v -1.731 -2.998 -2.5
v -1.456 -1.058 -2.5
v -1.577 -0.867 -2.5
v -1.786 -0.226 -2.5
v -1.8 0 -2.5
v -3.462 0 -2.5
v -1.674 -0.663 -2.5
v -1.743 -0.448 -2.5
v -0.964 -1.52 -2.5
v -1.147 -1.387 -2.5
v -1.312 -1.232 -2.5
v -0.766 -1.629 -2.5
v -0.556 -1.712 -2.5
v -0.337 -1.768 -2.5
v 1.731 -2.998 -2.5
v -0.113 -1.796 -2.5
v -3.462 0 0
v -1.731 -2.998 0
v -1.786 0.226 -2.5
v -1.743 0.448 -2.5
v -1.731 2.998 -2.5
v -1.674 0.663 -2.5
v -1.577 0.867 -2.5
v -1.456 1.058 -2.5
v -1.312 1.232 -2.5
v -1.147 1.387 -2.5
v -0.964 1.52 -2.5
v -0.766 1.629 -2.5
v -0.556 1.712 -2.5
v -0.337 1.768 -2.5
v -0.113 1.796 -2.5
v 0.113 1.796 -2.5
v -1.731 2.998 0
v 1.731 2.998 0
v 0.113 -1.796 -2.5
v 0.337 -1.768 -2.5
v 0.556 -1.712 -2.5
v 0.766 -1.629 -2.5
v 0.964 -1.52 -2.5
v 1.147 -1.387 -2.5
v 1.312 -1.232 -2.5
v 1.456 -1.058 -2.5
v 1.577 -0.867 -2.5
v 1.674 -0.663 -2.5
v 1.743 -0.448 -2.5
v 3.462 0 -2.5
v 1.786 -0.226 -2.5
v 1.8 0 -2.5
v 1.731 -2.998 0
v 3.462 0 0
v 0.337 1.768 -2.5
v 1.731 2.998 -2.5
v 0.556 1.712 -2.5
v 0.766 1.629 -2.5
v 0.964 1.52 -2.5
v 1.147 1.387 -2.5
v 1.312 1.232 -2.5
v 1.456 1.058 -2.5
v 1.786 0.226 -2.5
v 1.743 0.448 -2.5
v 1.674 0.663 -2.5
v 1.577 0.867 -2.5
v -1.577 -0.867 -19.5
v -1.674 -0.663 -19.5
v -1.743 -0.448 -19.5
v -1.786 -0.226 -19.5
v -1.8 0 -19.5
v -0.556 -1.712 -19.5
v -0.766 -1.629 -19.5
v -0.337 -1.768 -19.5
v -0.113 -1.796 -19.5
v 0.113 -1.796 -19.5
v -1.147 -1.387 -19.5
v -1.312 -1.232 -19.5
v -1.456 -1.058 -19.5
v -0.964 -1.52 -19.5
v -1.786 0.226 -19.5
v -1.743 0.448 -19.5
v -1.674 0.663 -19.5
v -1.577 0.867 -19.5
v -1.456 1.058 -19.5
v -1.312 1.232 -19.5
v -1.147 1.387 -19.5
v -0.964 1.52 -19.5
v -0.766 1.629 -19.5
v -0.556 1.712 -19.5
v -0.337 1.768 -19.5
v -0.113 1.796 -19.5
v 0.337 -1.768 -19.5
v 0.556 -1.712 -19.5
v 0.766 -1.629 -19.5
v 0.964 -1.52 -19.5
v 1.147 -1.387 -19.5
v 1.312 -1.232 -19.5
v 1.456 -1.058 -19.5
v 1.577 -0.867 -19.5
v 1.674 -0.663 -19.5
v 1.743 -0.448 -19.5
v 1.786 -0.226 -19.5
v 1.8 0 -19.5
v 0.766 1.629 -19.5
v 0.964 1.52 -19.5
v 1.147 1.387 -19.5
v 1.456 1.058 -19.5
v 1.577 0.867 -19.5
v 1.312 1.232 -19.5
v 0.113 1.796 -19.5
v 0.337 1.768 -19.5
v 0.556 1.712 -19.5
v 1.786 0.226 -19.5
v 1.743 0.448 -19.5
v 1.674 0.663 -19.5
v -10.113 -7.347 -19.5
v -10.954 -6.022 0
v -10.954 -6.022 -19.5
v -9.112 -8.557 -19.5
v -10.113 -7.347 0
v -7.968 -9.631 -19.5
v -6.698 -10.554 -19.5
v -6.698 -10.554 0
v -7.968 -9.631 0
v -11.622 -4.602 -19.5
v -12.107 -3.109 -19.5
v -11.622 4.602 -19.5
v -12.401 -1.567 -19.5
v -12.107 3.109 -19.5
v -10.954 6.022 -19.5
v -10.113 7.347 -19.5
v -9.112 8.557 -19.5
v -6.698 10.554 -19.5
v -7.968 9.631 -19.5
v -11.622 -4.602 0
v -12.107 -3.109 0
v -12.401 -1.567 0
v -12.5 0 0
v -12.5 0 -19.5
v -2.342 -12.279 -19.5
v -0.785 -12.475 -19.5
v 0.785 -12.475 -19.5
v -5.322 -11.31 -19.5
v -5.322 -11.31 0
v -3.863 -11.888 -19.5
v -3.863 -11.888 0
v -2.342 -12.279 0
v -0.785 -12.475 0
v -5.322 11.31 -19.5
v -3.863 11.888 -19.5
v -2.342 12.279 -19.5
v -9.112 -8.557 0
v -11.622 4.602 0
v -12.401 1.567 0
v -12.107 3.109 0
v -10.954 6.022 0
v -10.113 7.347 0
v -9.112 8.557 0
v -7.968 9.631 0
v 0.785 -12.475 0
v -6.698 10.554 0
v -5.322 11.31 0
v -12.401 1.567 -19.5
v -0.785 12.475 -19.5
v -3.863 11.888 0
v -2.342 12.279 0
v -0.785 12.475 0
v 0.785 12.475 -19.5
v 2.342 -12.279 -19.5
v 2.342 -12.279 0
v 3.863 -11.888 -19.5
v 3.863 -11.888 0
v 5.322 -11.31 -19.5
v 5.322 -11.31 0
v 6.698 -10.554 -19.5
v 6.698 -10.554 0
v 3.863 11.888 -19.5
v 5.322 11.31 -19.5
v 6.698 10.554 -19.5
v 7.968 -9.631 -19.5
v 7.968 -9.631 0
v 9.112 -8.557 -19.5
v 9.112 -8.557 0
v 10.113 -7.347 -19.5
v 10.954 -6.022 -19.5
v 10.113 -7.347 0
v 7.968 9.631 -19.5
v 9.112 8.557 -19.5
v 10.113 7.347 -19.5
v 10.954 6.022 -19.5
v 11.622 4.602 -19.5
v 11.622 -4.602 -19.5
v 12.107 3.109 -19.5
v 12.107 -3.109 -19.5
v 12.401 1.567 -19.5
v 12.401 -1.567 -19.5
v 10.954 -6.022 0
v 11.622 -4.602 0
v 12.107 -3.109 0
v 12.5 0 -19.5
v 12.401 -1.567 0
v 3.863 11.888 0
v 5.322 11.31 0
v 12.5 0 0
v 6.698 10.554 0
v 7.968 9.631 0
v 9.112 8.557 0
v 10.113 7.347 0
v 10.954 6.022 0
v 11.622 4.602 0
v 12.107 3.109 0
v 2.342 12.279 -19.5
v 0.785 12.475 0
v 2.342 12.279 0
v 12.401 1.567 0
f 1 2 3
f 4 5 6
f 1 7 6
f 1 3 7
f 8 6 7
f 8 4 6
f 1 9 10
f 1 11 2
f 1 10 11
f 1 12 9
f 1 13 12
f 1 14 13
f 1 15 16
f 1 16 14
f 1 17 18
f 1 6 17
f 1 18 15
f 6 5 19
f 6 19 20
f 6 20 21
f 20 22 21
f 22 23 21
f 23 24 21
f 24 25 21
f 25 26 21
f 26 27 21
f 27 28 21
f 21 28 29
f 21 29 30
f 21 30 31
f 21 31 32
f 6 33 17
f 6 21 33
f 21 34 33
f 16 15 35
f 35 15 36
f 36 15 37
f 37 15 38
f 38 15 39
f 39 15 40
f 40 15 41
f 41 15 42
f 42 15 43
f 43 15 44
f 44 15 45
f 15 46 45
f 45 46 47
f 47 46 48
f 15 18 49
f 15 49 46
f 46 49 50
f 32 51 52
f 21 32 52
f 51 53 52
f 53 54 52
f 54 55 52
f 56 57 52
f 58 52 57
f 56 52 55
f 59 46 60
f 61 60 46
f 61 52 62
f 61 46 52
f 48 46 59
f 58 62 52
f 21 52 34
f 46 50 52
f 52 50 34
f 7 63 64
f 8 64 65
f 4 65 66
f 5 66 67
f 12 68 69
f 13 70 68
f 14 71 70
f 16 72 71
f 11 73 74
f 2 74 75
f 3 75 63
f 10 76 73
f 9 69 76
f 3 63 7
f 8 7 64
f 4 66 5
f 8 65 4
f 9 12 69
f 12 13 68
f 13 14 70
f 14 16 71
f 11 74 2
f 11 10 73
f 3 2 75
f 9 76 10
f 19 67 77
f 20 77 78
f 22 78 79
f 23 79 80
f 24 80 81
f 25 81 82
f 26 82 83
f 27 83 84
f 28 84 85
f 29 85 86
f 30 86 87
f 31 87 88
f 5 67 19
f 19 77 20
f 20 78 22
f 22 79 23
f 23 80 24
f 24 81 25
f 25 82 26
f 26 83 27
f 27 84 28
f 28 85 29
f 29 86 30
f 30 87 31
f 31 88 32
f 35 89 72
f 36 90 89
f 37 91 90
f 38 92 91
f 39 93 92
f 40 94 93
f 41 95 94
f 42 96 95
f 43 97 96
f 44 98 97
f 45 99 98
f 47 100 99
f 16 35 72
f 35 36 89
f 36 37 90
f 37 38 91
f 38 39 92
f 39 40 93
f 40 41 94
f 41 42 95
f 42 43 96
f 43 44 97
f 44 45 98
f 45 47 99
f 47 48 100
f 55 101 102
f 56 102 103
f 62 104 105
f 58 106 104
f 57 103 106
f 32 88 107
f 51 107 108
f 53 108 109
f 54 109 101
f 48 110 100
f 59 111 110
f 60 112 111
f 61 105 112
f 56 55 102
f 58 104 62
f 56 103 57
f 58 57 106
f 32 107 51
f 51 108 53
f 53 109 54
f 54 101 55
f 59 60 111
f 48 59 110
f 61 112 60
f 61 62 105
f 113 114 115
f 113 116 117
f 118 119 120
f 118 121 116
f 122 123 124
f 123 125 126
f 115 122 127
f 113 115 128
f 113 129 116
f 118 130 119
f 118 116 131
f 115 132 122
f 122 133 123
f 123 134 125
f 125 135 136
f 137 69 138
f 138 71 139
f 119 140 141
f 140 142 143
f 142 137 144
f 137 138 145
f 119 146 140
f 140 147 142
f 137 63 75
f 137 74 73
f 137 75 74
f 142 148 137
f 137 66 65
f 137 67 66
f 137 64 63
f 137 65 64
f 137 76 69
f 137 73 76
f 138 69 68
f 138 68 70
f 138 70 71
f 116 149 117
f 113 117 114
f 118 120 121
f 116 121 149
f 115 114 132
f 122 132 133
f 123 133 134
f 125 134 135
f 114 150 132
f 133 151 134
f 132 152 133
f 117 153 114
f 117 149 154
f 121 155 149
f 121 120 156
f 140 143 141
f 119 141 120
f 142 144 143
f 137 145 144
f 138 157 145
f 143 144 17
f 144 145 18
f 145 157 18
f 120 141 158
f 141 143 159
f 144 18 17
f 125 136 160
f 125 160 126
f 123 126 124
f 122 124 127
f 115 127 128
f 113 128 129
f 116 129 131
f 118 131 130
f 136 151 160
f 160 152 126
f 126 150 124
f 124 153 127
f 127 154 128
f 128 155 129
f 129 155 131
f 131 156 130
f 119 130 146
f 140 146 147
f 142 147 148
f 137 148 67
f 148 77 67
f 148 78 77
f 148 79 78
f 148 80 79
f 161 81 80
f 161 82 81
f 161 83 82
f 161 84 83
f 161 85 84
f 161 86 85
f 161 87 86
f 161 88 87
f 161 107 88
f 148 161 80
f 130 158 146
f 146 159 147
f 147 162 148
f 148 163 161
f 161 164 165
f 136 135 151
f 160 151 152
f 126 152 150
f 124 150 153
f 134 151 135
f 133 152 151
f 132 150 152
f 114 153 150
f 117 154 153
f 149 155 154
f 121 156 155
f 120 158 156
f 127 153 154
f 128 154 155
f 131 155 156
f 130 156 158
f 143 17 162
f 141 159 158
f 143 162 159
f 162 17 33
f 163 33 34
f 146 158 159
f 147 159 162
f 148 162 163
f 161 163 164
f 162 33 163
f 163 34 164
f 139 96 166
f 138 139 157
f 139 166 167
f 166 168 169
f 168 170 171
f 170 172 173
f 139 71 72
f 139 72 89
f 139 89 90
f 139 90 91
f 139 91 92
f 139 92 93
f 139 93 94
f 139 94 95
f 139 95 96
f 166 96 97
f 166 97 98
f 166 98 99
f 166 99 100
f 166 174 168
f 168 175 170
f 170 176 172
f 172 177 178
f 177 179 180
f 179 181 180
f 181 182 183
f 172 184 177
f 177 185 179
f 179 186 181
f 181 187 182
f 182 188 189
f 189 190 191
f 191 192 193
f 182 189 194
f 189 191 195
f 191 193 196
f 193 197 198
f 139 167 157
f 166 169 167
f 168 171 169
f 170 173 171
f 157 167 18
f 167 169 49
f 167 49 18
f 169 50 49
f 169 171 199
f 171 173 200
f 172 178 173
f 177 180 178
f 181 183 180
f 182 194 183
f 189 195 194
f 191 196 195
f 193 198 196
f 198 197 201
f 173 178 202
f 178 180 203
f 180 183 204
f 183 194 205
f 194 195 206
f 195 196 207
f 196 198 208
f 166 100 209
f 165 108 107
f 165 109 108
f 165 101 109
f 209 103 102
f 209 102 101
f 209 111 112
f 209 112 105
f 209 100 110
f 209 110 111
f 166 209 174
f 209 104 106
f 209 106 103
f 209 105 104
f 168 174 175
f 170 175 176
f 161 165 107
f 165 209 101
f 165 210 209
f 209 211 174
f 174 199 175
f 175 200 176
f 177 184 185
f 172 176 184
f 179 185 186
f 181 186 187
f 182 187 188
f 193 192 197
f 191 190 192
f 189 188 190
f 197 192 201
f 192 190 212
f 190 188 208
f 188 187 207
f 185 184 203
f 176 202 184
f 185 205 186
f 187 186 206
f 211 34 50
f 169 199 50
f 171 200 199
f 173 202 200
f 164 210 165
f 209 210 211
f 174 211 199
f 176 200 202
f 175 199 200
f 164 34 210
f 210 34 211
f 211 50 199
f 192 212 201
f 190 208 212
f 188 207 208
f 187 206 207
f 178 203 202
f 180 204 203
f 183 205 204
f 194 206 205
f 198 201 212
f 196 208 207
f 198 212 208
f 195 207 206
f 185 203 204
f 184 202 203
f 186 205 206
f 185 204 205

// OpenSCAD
$fn = 50;

difference() {
	union() {
		translate(v = [0, 0, -19.5]) {
			cylinder(h = 19.5, r = 12.5);
		}
	}
	union() {
		translate(v = [0, 0, 0]) {
			rotate(a = [0, 0, 0]) {
				difference() {
					union() {
						translate(v = [0, 0, -2.5]) {
							linear_extrude(height = 2.5) {
								polygon(points = [[3.4619999999999997, 0.0], [1.7310000000000003, 2.9981799479017264], [-1.7309999999999992, 2.9981799479017264], [-3.4619999999999997, 4.2397272186481365e-16], [-1.7310000000000014, -2.998179947901726], [1.7309999999999977, -2.9981799479017277]]);
							}
						}
					}
					union();
				}
			}
		}
		#translate(v = [0, 0, -100.0]) {
			cylinder(h = 200, r = 1.8);
		}
	}
}
